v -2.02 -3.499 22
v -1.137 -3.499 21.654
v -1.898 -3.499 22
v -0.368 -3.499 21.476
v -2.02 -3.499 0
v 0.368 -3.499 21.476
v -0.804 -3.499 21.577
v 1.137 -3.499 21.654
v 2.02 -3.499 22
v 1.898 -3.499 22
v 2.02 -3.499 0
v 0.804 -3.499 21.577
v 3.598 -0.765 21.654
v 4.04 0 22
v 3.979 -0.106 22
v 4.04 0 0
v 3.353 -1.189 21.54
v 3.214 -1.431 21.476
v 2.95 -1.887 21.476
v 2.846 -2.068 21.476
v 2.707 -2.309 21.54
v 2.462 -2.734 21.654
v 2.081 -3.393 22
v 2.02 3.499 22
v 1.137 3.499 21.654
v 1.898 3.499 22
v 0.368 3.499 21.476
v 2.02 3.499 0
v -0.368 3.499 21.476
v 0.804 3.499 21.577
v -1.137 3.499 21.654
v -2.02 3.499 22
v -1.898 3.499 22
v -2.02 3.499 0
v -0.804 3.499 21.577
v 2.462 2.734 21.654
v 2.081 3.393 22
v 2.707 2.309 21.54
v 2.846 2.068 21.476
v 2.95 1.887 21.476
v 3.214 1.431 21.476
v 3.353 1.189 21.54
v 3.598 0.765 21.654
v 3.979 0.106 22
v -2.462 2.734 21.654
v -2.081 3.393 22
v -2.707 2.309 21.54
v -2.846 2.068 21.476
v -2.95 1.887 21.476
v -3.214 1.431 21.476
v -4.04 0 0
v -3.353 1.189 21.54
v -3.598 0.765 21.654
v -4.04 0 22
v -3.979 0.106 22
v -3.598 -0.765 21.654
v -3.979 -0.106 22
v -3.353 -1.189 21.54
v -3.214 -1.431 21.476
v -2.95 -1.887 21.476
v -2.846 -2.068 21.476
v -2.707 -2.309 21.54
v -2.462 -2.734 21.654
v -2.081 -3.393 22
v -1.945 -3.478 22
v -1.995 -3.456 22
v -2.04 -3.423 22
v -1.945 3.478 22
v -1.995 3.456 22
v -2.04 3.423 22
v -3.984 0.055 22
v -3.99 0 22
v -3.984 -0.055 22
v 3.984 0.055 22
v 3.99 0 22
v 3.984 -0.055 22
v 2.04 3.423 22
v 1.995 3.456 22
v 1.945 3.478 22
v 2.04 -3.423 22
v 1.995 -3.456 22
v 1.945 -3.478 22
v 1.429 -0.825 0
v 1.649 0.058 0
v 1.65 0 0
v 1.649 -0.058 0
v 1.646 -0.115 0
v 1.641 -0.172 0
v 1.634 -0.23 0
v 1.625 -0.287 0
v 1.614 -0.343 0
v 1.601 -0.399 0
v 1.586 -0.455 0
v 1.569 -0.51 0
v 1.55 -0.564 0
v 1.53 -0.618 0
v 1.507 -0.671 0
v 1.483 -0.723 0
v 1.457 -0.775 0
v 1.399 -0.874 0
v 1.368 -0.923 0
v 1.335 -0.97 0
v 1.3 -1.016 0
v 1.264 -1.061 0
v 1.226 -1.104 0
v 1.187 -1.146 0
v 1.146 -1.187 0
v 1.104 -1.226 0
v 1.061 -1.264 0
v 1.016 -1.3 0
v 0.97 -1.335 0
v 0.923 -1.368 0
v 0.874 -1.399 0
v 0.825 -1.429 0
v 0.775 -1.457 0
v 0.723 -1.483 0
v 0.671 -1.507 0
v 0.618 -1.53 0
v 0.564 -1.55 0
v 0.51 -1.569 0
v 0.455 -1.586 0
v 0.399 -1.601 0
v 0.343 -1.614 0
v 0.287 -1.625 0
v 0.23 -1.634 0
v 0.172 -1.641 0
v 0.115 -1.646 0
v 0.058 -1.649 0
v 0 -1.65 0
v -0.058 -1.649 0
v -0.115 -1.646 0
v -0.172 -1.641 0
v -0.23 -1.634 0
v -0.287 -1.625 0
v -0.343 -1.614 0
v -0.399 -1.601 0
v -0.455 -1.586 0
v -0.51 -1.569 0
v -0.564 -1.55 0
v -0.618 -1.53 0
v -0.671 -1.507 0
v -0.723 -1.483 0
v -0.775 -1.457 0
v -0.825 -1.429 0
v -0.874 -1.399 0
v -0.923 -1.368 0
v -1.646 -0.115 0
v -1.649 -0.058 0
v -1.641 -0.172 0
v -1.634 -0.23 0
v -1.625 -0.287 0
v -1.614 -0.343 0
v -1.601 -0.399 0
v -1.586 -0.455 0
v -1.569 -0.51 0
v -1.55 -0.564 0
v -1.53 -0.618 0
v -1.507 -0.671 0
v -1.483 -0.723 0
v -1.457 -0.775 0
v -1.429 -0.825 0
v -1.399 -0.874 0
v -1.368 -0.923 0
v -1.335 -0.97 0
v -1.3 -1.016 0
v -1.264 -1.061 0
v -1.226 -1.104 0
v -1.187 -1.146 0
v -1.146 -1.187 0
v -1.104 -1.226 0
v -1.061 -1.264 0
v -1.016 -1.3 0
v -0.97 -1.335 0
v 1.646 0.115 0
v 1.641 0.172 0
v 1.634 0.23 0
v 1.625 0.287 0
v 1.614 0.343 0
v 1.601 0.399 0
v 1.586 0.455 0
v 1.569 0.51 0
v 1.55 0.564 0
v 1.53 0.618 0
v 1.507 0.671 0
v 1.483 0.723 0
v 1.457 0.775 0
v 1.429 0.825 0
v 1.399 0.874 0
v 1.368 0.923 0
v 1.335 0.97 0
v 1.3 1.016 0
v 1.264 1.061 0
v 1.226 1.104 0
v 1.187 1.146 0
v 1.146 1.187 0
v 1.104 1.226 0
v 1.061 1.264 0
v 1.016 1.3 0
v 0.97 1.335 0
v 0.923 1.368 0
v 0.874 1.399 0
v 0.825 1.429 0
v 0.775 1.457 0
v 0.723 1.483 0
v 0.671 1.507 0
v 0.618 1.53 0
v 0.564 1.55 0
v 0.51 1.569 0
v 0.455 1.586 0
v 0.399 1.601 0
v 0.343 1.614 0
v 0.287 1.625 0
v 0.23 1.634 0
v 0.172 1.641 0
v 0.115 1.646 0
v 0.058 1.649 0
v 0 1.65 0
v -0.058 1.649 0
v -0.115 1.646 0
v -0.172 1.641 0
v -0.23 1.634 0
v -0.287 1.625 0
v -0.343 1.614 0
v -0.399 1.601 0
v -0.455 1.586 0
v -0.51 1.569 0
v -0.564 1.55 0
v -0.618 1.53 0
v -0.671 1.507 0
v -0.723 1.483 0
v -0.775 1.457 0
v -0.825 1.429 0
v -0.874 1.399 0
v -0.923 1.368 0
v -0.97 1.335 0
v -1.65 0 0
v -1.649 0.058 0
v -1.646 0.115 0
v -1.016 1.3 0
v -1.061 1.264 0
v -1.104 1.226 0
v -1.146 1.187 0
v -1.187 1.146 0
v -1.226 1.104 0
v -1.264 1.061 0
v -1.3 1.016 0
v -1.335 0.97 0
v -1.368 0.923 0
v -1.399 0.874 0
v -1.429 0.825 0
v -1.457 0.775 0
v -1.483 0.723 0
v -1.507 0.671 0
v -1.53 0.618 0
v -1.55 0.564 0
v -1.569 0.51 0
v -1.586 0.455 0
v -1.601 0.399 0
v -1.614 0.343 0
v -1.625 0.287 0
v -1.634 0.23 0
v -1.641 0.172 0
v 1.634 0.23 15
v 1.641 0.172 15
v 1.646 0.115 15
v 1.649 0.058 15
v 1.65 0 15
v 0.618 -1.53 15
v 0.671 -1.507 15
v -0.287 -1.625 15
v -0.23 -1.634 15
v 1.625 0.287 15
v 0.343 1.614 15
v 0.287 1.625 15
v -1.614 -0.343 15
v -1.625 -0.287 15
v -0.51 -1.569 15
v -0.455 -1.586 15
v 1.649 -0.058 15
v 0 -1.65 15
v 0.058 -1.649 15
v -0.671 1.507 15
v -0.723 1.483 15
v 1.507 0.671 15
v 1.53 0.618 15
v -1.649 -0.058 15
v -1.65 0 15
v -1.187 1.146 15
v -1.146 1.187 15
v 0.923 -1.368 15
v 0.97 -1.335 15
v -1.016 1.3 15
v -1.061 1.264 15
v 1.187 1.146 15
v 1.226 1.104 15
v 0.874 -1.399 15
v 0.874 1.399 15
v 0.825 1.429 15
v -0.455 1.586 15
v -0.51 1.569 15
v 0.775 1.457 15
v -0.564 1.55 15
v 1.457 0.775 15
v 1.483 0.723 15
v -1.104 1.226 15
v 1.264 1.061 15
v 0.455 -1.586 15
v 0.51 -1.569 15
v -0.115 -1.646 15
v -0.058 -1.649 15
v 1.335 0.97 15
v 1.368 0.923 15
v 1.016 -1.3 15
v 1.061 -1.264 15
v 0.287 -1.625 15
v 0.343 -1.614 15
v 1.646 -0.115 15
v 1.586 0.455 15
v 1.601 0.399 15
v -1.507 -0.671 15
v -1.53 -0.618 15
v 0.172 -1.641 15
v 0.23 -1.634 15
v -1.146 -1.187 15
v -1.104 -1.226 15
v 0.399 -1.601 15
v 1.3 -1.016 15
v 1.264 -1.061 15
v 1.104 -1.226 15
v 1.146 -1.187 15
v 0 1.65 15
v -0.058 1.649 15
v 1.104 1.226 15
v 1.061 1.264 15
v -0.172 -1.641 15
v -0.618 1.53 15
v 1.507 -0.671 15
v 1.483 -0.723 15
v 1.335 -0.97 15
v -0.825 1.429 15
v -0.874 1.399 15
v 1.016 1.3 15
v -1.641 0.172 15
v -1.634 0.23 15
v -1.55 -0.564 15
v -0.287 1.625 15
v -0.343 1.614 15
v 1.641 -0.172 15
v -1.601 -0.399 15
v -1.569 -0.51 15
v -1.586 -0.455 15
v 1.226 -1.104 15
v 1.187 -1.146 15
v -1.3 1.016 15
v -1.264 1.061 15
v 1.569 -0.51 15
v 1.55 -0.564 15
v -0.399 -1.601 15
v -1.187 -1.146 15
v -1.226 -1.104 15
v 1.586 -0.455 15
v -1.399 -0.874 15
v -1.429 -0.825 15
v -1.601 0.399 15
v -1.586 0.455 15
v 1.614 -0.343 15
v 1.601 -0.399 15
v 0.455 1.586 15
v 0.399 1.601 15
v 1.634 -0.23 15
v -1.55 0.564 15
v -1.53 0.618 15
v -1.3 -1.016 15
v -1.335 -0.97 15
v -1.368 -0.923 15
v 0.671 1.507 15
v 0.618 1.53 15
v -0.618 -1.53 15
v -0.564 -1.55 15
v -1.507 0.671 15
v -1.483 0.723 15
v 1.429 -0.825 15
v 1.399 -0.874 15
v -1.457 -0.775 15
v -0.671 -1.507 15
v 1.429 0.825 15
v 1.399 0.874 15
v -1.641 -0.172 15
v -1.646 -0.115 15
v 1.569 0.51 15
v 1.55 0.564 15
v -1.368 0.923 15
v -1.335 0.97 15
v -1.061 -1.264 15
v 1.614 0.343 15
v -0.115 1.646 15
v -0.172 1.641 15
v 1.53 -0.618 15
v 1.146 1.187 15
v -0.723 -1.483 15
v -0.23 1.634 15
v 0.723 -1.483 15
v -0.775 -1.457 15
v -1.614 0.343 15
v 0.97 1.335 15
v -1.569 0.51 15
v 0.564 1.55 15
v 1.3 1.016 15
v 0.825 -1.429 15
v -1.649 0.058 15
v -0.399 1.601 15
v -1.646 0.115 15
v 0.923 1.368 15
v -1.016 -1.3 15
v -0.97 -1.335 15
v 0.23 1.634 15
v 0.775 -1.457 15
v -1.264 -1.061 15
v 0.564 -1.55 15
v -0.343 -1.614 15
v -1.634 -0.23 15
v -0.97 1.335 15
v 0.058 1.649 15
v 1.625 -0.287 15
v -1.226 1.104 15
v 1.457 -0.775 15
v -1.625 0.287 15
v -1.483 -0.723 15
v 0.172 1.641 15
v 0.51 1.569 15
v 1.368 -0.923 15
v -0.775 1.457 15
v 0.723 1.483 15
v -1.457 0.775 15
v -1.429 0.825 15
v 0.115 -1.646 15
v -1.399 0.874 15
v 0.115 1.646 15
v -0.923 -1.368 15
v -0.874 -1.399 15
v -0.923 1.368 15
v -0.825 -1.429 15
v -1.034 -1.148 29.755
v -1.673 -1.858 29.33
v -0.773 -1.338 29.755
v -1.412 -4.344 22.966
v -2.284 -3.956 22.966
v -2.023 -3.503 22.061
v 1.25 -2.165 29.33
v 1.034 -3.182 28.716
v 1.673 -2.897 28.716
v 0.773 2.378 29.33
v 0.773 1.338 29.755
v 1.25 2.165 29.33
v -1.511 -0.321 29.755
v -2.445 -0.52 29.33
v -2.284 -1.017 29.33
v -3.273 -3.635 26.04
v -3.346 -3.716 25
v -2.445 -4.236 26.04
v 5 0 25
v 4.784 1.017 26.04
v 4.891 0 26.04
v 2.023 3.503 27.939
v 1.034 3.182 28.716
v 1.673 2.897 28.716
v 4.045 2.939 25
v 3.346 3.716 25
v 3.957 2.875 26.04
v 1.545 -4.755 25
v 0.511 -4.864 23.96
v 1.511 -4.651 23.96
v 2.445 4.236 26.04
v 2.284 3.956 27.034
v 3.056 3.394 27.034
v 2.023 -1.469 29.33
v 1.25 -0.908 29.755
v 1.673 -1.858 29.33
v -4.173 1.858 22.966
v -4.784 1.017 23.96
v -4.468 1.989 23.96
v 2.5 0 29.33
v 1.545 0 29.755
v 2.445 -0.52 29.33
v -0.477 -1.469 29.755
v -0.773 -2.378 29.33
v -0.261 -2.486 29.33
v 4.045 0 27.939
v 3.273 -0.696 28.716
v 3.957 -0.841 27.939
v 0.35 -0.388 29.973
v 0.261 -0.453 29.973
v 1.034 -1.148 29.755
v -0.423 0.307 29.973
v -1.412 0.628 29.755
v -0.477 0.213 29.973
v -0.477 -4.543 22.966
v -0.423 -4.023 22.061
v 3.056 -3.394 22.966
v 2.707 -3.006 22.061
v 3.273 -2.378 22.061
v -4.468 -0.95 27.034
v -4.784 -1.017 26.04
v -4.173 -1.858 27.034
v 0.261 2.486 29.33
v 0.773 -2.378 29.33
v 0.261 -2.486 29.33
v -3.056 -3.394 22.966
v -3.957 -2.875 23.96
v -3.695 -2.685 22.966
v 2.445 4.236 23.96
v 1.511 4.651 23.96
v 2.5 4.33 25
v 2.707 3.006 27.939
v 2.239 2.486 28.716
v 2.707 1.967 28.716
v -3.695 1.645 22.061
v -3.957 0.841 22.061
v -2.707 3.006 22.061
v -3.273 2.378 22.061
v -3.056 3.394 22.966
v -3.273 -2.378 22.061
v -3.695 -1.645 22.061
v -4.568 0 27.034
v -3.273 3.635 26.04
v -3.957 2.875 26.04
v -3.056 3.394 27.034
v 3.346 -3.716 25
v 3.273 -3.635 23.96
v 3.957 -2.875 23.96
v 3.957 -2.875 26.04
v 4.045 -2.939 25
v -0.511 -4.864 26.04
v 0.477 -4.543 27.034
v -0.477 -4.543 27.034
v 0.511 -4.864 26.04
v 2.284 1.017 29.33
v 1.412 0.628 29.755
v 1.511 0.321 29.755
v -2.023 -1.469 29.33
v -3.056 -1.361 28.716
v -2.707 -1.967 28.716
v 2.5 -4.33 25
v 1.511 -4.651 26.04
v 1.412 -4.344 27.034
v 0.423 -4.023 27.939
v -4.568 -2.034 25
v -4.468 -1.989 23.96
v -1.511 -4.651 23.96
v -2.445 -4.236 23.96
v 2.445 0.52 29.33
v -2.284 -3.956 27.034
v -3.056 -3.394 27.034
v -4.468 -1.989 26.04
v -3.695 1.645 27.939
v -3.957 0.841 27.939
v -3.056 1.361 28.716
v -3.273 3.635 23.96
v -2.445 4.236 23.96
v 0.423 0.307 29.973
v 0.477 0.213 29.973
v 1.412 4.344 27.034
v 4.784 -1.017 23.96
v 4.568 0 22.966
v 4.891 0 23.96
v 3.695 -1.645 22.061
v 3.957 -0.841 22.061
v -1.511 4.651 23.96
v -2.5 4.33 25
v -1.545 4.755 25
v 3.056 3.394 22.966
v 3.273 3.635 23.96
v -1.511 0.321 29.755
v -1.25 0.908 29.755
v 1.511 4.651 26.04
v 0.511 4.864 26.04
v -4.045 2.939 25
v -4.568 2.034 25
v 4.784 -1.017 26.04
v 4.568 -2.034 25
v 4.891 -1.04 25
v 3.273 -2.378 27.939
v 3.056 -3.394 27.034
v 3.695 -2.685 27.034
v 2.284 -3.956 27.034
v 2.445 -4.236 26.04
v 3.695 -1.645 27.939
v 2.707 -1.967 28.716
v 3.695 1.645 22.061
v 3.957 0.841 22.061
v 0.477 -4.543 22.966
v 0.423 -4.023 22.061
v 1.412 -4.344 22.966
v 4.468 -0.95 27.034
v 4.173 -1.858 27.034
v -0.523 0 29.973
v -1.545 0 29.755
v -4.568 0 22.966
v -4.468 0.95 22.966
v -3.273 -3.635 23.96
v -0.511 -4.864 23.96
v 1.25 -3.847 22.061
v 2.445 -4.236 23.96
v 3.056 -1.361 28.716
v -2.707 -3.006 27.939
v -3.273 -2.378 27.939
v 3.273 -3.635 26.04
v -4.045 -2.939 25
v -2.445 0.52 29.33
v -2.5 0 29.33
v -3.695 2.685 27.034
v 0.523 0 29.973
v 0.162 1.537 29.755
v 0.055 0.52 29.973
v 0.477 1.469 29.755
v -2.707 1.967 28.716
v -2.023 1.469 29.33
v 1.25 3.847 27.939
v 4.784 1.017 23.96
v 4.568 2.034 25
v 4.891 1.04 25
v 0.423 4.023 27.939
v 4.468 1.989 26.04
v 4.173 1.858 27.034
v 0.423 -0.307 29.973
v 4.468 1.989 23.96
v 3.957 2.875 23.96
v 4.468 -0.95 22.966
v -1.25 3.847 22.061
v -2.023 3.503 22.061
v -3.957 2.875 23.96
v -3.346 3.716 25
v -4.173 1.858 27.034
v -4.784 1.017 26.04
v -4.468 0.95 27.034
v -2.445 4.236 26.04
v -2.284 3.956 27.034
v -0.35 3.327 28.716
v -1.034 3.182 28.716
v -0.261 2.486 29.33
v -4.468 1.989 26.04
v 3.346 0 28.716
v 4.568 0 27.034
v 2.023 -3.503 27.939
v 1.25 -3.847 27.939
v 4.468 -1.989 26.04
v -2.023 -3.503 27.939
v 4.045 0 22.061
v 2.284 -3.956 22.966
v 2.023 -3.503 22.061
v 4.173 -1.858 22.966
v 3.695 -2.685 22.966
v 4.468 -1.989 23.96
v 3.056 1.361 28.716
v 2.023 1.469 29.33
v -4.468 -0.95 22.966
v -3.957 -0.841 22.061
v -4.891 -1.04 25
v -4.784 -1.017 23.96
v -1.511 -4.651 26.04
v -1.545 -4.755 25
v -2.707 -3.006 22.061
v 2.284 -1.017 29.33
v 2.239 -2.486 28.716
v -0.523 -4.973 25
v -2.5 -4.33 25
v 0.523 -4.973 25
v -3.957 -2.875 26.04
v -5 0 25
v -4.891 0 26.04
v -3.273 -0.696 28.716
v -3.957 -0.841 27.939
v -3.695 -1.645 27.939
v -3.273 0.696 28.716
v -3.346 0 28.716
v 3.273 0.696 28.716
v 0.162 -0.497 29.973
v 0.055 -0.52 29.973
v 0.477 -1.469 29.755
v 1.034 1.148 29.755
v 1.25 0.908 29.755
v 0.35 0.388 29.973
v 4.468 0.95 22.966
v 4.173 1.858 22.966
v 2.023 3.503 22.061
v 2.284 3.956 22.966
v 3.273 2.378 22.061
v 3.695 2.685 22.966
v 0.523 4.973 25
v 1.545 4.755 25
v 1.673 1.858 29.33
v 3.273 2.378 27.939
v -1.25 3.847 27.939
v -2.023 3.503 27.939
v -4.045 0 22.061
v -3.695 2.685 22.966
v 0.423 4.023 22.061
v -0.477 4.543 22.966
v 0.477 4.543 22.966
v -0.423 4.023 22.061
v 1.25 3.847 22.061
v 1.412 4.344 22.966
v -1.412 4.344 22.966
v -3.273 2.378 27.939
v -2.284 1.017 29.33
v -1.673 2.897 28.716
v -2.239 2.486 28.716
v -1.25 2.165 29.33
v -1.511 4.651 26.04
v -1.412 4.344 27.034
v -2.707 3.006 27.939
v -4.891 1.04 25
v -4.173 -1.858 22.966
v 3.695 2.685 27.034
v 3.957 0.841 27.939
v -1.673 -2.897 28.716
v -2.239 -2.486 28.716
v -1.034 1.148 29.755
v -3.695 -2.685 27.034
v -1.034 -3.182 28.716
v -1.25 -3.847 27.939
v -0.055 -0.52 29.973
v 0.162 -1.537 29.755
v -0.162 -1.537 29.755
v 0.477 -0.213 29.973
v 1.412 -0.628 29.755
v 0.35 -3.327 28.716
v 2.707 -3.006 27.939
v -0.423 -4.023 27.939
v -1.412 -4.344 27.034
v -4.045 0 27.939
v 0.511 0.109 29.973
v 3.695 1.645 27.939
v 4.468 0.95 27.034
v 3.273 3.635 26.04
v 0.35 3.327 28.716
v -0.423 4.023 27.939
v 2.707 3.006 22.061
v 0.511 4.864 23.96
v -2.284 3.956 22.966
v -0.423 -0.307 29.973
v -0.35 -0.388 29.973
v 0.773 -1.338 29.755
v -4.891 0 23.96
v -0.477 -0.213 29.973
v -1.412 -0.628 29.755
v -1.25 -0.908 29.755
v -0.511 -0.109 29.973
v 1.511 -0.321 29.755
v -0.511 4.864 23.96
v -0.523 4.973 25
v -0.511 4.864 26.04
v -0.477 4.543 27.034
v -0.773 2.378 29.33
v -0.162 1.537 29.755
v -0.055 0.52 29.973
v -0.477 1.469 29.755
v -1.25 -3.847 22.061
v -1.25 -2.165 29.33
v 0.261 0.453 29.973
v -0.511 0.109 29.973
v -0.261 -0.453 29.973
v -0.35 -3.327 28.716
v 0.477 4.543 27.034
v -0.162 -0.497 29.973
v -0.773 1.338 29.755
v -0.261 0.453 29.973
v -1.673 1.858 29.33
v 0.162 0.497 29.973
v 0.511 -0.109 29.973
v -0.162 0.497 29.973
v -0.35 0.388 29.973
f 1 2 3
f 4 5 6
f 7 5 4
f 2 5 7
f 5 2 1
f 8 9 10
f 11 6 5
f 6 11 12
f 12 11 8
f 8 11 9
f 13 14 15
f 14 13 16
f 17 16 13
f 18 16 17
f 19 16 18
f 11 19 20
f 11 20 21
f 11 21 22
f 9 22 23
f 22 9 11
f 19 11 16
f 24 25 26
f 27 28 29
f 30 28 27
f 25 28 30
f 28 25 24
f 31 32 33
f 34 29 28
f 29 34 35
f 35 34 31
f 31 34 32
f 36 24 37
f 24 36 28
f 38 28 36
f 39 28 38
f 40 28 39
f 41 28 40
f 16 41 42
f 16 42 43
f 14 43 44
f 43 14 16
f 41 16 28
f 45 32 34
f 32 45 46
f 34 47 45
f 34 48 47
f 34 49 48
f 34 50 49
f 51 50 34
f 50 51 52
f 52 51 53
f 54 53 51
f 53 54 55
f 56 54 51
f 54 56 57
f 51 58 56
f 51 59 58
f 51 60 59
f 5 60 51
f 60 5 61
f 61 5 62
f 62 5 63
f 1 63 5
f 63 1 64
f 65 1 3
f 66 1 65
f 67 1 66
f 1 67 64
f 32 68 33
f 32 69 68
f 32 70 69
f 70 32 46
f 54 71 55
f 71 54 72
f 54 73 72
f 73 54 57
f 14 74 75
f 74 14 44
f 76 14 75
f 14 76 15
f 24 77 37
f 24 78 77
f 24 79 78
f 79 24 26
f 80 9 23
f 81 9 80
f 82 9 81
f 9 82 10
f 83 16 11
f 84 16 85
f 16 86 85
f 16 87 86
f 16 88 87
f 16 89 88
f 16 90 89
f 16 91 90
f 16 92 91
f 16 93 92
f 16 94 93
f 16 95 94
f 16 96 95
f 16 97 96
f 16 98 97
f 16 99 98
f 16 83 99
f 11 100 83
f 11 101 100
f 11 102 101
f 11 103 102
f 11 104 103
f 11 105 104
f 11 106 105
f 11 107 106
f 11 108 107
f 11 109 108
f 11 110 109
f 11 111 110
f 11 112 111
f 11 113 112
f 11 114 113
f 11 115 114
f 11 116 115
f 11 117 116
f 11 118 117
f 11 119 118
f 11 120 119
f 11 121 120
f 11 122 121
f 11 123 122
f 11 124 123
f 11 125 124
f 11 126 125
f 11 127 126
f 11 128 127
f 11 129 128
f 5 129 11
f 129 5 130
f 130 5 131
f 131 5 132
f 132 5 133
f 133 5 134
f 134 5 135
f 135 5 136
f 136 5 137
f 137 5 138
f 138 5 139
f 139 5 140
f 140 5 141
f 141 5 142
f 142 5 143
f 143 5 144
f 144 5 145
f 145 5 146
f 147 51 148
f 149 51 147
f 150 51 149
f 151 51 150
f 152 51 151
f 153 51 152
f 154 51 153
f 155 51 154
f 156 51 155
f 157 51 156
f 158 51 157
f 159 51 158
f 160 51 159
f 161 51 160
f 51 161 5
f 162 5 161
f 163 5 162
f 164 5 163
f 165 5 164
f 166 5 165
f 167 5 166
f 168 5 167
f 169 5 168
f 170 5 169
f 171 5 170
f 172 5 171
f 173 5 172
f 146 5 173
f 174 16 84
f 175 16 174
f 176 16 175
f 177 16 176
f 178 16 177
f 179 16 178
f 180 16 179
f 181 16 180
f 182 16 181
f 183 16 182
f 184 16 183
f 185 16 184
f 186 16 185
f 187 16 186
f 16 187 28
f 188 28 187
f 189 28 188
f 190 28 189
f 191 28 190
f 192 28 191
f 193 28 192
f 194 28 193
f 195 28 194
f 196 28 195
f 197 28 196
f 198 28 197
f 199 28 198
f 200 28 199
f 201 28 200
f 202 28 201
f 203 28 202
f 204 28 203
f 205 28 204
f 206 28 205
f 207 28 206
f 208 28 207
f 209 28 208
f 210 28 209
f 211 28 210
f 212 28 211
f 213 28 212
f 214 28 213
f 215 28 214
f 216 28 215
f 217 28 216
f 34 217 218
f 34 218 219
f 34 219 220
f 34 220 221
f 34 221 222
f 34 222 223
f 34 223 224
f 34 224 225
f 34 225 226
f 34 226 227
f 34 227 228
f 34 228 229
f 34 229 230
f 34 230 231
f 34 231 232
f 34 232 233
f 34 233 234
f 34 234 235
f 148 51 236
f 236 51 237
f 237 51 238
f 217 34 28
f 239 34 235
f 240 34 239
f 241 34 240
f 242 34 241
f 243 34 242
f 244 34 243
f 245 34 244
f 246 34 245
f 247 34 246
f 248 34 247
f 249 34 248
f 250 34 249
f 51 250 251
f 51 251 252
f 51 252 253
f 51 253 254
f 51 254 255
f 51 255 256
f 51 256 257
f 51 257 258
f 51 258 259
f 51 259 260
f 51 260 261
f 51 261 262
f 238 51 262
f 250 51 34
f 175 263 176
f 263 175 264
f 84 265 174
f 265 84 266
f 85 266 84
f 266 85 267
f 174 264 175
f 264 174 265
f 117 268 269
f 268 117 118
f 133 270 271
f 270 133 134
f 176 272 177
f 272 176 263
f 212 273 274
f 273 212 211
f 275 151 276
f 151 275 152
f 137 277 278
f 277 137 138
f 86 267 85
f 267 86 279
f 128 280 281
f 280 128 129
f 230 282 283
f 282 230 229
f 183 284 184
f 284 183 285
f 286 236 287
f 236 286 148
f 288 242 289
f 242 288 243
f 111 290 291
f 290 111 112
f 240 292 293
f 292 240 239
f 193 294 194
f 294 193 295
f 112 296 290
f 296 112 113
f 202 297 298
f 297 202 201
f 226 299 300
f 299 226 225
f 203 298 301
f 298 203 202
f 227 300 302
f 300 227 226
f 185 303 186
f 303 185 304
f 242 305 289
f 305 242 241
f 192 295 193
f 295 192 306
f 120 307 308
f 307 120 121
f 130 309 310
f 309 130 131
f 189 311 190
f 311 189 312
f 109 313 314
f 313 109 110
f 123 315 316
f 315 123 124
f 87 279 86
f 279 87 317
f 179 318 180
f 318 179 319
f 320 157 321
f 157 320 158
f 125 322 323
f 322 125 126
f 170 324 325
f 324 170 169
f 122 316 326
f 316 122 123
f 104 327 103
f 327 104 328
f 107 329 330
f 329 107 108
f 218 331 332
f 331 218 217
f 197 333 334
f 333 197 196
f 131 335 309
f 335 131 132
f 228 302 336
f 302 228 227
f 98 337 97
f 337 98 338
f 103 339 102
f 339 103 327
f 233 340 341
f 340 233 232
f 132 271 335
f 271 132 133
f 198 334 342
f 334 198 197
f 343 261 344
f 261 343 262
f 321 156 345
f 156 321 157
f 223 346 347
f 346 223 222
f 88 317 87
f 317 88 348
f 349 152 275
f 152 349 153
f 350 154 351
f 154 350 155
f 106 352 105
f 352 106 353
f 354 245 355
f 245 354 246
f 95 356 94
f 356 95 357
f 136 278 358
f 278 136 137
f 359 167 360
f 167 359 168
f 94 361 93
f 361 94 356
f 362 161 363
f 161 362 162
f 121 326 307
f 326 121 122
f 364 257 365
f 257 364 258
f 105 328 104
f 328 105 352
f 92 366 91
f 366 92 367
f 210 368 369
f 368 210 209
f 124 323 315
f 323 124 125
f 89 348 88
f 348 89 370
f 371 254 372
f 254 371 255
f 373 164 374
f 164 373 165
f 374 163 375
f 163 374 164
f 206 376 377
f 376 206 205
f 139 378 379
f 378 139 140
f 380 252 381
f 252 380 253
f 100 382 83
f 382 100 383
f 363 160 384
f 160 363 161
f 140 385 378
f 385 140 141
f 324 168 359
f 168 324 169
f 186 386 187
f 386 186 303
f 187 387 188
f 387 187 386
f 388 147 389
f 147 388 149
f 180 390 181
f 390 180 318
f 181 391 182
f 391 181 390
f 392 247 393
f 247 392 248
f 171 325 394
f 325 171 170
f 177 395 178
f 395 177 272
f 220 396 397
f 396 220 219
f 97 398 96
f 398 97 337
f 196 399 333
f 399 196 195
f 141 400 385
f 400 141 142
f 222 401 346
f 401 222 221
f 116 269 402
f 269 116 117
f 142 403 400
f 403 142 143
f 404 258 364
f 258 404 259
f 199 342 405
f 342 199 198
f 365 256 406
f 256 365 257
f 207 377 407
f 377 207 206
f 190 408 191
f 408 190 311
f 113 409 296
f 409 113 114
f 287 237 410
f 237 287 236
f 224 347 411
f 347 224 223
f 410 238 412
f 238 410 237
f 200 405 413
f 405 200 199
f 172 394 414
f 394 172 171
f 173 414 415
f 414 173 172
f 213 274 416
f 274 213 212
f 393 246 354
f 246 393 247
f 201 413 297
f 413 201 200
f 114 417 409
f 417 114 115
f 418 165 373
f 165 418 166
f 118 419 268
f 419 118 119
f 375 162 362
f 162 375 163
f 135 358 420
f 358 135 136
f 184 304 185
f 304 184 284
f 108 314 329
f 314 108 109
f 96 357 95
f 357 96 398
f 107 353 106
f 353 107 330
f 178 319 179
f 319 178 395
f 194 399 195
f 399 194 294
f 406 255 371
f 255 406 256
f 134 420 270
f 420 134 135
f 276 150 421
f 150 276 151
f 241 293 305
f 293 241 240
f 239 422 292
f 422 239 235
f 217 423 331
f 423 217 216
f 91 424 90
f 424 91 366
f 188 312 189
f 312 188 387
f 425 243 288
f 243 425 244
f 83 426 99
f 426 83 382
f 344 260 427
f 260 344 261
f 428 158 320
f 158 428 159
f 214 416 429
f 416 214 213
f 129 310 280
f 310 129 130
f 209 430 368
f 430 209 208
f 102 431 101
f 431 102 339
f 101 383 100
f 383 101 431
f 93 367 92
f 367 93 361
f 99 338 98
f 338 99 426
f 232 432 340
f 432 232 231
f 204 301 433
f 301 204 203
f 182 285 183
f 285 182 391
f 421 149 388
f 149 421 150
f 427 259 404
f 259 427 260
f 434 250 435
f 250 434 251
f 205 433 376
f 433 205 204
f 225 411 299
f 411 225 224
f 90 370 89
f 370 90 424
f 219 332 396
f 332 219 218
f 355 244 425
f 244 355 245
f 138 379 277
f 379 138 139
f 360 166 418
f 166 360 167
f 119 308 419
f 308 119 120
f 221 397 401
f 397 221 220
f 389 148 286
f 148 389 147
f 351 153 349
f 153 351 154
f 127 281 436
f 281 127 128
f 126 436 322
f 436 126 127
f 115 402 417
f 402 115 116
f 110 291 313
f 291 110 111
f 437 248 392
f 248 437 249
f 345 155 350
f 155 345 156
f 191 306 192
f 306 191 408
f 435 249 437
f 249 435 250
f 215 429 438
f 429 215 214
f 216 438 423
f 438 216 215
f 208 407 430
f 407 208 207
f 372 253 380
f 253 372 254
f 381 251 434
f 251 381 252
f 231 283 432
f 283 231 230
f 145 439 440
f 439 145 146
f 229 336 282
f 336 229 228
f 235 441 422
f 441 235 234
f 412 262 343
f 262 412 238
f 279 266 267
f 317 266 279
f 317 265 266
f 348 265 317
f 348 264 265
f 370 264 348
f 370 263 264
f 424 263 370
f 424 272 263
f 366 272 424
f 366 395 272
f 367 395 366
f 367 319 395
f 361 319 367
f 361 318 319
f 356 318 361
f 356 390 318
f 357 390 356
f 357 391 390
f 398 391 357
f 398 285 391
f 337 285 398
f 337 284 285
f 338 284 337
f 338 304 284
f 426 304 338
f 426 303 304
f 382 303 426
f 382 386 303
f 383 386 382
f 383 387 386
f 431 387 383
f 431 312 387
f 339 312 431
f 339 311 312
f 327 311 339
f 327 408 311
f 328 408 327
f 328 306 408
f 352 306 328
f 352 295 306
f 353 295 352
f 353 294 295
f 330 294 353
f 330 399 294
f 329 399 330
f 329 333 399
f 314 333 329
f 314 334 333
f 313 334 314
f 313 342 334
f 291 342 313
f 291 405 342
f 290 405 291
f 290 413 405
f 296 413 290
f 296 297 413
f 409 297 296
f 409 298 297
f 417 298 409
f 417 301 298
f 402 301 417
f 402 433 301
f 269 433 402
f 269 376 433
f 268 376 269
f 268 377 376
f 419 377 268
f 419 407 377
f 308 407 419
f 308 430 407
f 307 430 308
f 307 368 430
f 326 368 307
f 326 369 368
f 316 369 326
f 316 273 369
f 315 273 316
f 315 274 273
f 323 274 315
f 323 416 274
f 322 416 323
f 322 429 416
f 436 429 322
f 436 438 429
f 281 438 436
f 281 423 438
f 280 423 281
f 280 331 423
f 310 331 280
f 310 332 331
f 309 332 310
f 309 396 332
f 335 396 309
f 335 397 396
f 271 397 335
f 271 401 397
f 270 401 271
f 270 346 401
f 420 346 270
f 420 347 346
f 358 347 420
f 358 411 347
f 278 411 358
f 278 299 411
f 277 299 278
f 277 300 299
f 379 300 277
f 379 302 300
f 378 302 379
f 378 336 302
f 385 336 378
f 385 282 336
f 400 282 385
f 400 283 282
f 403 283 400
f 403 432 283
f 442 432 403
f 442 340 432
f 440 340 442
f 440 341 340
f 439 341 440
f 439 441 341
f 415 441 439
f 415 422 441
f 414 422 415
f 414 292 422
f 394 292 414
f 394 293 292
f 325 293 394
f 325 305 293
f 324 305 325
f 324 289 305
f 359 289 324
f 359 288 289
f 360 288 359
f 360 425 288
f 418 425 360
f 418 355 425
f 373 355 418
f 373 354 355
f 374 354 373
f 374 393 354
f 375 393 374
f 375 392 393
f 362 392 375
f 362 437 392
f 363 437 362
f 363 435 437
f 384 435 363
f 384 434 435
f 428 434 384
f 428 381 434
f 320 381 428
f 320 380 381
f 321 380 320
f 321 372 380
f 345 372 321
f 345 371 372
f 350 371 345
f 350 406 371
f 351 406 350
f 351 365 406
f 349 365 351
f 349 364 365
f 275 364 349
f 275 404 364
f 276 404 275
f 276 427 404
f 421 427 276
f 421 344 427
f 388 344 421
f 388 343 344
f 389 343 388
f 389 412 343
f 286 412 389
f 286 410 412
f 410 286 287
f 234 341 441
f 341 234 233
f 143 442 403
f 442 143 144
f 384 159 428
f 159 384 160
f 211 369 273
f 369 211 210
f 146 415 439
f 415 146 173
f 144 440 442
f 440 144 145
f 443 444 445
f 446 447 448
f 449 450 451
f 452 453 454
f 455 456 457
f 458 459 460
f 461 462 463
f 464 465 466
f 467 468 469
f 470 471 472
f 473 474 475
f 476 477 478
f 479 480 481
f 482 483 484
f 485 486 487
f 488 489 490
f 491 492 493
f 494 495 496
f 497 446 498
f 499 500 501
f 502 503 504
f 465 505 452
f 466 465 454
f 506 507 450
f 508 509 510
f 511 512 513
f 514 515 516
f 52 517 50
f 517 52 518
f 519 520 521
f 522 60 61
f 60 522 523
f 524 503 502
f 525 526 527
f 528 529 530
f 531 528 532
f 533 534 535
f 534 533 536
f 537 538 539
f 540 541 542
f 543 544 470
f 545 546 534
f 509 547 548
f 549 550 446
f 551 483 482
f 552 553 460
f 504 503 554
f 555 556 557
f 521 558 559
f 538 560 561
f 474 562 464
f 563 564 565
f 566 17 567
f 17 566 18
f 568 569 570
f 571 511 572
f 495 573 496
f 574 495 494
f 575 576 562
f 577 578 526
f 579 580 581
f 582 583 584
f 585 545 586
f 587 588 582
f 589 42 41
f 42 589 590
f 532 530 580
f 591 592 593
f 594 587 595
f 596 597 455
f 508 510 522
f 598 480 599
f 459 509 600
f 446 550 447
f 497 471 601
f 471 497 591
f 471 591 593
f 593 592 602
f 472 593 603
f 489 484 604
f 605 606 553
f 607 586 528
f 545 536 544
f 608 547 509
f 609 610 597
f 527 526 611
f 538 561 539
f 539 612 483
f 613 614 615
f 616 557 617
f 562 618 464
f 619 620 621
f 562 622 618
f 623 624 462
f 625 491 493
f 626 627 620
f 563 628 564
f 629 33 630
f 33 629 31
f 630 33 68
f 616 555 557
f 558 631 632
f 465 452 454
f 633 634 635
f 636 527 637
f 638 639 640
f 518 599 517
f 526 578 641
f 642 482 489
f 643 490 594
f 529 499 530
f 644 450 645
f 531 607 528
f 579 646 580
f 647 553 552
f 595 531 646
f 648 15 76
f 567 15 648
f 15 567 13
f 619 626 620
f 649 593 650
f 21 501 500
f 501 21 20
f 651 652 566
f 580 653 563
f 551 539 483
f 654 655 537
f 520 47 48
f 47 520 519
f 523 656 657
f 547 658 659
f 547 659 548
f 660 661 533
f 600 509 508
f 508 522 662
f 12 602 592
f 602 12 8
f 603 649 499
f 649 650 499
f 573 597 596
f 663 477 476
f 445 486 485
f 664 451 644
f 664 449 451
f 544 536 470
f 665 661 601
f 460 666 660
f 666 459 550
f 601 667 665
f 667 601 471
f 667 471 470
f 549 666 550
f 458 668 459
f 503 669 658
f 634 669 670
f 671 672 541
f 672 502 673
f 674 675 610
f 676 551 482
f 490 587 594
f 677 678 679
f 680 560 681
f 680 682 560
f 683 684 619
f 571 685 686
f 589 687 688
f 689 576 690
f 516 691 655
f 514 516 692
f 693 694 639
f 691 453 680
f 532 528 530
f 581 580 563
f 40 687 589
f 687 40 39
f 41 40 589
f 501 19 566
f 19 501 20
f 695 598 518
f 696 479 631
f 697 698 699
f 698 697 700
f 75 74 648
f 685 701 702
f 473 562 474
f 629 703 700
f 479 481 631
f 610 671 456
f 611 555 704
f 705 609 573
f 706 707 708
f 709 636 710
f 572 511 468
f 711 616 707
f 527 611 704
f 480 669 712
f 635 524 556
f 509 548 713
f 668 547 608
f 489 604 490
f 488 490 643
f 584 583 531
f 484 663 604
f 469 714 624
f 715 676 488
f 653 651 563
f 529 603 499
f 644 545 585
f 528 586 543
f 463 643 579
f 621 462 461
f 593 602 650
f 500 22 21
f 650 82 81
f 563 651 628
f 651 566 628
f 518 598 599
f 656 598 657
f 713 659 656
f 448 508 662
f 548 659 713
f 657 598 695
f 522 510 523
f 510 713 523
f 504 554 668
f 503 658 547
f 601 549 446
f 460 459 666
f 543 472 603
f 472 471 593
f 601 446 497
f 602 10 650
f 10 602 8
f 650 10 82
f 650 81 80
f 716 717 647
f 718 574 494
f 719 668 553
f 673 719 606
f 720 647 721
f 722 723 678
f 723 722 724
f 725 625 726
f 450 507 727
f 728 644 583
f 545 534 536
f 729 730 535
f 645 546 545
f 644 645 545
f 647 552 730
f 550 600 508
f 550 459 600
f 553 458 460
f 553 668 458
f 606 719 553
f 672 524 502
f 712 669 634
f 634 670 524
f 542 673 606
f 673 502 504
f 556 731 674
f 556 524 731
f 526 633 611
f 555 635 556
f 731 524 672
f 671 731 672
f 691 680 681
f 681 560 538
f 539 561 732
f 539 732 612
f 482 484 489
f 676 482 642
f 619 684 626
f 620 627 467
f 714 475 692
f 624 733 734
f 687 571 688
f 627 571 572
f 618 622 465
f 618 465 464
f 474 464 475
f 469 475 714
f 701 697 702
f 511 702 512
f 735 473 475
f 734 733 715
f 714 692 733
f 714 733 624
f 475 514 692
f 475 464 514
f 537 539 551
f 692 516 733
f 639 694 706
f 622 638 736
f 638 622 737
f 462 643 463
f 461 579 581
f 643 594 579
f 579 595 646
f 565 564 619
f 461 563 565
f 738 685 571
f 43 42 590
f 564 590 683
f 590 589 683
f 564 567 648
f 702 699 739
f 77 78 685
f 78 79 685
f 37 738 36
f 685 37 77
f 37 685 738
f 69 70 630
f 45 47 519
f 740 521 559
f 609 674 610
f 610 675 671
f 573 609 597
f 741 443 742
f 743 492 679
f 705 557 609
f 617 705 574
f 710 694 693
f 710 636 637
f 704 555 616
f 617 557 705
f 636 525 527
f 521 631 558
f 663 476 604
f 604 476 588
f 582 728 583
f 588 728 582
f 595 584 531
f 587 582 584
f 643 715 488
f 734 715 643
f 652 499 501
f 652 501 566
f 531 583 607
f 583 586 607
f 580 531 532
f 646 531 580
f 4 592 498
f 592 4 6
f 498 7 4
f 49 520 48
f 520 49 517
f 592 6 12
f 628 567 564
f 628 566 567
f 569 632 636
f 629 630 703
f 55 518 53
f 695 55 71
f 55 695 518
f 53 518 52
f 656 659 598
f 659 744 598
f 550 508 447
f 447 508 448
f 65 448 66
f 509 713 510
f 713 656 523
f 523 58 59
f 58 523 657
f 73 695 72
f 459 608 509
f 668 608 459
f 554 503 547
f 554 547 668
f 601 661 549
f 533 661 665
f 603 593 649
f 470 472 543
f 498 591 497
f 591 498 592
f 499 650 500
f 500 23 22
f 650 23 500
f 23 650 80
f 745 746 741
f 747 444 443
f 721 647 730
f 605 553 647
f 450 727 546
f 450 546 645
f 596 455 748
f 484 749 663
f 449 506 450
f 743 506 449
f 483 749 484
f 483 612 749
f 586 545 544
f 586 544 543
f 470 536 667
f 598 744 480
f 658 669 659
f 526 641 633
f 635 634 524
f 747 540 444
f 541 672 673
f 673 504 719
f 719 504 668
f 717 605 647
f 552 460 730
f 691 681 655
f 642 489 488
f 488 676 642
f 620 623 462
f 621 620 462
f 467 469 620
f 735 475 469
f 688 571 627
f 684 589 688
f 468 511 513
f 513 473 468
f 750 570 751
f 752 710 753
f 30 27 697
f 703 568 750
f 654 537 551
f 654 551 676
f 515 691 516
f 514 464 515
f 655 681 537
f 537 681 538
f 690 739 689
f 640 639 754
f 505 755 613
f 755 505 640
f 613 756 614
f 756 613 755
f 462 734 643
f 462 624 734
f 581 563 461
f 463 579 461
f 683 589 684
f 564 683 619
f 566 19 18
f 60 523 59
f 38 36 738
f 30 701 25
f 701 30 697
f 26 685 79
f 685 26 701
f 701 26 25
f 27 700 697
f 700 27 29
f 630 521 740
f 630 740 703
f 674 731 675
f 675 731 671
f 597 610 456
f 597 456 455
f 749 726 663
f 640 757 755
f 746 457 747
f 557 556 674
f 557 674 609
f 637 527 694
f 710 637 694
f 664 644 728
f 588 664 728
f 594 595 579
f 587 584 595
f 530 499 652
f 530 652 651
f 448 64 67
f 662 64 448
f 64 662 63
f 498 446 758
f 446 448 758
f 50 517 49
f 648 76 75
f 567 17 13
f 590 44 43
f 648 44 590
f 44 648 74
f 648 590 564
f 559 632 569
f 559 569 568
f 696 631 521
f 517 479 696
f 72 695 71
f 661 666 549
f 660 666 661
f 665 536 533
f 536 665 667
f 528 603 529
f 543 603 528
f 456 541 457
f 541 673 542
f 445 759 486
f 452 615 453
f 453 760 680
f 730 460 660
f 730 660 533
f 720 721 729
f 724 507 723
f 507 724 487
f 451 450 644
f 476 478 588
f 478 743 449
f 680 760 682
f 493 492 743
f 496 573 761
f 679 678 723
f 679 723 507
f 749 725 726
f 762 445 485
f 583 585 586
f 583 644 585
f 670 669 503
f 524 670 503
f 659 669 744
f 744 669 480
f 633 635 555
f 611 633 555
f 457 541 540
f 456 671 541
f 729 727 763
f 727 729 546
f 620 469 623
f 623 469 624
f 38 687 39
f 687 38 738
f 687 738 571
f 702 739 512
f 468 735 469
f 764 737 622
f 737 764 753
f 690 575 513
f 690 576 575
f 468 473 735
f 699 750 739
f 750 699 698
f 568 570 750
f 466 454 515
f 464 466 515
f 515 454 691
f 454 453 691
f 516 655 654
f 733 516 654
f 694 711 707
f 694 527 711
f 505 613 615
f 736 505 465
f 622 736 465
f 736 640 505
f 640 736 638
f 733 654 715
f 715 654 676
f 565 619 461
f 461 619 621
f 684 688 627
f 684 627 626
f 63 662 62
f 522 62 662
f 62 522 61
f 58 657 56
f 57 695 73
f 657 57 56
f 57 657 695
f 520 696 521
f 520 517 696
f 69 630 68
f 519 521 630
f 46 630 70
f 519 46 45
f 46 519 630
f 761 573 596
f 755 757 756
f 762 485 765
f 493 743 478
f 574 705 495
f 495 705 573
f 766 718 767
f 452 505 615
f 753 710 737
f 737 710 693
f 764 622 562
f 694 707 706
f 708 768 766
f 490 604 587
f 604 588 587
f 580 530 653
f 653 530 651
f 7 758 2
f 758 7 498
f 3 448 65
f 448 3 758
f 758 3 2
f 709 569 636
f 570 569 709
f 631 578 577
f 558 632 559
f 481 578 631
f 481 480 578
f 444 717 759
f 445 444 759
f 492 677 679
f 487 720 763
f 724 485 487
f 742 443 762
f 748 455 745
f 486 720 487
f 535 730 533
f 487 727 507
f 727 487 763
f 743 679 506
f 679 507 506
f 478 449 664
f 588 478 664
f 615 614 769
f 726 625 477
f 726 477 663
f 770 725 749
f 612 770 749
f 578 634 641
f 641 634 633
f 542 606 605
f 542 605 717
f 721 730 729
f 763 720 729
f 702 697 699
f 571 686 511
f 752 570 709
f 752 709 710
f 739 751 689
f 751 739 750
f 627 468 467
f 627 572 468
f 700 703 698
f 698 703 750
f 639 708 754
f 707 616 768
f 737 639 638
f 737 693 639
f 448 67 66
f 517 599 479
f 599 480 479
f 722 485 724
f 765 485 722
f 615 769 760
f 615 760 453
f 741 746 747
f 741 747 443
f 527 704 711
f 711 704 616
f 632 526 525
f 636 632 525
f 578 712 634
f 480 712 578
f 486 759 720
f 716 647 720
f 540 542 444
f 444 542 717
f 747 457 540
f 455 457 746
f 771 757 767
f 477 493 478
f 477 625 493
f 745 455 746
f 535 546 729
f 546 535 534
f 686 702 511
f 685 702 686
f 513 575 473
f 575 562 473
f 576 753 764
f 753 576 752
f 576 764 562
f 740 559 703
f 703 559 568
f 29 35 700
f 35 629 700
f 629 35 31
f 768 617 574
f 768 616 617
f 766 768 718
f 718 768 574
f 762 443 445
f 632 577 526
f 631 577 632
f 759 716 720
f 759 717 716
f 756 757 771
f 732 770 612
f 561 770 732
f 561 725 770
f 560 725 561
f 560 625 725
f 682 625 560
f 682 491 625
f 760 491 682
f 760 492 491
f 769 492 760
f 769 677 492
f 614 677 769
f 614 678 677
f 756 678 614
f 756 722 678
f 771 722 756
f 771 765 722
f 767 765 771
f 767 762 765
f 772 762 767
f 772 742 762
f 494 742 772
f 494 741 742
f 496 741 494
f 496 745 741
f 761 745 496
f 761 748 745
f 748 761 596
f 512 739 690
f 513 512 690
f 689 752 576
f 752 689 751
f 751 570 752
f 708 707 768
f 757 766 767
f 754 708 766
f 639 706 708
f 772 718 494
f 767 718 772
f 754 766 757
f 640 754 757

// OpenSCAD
// simple way to make a hexagon
// 7mm flat-to-flat is 8.08mm diameter
difference() {
  cylinder(d=8.08, h=22, $fn=6);
  cylinder(d=3.3, h=15, $fn=180);
}
translate([0, 0, 25]) {
  sphere(d=10, $fs=1);
}
